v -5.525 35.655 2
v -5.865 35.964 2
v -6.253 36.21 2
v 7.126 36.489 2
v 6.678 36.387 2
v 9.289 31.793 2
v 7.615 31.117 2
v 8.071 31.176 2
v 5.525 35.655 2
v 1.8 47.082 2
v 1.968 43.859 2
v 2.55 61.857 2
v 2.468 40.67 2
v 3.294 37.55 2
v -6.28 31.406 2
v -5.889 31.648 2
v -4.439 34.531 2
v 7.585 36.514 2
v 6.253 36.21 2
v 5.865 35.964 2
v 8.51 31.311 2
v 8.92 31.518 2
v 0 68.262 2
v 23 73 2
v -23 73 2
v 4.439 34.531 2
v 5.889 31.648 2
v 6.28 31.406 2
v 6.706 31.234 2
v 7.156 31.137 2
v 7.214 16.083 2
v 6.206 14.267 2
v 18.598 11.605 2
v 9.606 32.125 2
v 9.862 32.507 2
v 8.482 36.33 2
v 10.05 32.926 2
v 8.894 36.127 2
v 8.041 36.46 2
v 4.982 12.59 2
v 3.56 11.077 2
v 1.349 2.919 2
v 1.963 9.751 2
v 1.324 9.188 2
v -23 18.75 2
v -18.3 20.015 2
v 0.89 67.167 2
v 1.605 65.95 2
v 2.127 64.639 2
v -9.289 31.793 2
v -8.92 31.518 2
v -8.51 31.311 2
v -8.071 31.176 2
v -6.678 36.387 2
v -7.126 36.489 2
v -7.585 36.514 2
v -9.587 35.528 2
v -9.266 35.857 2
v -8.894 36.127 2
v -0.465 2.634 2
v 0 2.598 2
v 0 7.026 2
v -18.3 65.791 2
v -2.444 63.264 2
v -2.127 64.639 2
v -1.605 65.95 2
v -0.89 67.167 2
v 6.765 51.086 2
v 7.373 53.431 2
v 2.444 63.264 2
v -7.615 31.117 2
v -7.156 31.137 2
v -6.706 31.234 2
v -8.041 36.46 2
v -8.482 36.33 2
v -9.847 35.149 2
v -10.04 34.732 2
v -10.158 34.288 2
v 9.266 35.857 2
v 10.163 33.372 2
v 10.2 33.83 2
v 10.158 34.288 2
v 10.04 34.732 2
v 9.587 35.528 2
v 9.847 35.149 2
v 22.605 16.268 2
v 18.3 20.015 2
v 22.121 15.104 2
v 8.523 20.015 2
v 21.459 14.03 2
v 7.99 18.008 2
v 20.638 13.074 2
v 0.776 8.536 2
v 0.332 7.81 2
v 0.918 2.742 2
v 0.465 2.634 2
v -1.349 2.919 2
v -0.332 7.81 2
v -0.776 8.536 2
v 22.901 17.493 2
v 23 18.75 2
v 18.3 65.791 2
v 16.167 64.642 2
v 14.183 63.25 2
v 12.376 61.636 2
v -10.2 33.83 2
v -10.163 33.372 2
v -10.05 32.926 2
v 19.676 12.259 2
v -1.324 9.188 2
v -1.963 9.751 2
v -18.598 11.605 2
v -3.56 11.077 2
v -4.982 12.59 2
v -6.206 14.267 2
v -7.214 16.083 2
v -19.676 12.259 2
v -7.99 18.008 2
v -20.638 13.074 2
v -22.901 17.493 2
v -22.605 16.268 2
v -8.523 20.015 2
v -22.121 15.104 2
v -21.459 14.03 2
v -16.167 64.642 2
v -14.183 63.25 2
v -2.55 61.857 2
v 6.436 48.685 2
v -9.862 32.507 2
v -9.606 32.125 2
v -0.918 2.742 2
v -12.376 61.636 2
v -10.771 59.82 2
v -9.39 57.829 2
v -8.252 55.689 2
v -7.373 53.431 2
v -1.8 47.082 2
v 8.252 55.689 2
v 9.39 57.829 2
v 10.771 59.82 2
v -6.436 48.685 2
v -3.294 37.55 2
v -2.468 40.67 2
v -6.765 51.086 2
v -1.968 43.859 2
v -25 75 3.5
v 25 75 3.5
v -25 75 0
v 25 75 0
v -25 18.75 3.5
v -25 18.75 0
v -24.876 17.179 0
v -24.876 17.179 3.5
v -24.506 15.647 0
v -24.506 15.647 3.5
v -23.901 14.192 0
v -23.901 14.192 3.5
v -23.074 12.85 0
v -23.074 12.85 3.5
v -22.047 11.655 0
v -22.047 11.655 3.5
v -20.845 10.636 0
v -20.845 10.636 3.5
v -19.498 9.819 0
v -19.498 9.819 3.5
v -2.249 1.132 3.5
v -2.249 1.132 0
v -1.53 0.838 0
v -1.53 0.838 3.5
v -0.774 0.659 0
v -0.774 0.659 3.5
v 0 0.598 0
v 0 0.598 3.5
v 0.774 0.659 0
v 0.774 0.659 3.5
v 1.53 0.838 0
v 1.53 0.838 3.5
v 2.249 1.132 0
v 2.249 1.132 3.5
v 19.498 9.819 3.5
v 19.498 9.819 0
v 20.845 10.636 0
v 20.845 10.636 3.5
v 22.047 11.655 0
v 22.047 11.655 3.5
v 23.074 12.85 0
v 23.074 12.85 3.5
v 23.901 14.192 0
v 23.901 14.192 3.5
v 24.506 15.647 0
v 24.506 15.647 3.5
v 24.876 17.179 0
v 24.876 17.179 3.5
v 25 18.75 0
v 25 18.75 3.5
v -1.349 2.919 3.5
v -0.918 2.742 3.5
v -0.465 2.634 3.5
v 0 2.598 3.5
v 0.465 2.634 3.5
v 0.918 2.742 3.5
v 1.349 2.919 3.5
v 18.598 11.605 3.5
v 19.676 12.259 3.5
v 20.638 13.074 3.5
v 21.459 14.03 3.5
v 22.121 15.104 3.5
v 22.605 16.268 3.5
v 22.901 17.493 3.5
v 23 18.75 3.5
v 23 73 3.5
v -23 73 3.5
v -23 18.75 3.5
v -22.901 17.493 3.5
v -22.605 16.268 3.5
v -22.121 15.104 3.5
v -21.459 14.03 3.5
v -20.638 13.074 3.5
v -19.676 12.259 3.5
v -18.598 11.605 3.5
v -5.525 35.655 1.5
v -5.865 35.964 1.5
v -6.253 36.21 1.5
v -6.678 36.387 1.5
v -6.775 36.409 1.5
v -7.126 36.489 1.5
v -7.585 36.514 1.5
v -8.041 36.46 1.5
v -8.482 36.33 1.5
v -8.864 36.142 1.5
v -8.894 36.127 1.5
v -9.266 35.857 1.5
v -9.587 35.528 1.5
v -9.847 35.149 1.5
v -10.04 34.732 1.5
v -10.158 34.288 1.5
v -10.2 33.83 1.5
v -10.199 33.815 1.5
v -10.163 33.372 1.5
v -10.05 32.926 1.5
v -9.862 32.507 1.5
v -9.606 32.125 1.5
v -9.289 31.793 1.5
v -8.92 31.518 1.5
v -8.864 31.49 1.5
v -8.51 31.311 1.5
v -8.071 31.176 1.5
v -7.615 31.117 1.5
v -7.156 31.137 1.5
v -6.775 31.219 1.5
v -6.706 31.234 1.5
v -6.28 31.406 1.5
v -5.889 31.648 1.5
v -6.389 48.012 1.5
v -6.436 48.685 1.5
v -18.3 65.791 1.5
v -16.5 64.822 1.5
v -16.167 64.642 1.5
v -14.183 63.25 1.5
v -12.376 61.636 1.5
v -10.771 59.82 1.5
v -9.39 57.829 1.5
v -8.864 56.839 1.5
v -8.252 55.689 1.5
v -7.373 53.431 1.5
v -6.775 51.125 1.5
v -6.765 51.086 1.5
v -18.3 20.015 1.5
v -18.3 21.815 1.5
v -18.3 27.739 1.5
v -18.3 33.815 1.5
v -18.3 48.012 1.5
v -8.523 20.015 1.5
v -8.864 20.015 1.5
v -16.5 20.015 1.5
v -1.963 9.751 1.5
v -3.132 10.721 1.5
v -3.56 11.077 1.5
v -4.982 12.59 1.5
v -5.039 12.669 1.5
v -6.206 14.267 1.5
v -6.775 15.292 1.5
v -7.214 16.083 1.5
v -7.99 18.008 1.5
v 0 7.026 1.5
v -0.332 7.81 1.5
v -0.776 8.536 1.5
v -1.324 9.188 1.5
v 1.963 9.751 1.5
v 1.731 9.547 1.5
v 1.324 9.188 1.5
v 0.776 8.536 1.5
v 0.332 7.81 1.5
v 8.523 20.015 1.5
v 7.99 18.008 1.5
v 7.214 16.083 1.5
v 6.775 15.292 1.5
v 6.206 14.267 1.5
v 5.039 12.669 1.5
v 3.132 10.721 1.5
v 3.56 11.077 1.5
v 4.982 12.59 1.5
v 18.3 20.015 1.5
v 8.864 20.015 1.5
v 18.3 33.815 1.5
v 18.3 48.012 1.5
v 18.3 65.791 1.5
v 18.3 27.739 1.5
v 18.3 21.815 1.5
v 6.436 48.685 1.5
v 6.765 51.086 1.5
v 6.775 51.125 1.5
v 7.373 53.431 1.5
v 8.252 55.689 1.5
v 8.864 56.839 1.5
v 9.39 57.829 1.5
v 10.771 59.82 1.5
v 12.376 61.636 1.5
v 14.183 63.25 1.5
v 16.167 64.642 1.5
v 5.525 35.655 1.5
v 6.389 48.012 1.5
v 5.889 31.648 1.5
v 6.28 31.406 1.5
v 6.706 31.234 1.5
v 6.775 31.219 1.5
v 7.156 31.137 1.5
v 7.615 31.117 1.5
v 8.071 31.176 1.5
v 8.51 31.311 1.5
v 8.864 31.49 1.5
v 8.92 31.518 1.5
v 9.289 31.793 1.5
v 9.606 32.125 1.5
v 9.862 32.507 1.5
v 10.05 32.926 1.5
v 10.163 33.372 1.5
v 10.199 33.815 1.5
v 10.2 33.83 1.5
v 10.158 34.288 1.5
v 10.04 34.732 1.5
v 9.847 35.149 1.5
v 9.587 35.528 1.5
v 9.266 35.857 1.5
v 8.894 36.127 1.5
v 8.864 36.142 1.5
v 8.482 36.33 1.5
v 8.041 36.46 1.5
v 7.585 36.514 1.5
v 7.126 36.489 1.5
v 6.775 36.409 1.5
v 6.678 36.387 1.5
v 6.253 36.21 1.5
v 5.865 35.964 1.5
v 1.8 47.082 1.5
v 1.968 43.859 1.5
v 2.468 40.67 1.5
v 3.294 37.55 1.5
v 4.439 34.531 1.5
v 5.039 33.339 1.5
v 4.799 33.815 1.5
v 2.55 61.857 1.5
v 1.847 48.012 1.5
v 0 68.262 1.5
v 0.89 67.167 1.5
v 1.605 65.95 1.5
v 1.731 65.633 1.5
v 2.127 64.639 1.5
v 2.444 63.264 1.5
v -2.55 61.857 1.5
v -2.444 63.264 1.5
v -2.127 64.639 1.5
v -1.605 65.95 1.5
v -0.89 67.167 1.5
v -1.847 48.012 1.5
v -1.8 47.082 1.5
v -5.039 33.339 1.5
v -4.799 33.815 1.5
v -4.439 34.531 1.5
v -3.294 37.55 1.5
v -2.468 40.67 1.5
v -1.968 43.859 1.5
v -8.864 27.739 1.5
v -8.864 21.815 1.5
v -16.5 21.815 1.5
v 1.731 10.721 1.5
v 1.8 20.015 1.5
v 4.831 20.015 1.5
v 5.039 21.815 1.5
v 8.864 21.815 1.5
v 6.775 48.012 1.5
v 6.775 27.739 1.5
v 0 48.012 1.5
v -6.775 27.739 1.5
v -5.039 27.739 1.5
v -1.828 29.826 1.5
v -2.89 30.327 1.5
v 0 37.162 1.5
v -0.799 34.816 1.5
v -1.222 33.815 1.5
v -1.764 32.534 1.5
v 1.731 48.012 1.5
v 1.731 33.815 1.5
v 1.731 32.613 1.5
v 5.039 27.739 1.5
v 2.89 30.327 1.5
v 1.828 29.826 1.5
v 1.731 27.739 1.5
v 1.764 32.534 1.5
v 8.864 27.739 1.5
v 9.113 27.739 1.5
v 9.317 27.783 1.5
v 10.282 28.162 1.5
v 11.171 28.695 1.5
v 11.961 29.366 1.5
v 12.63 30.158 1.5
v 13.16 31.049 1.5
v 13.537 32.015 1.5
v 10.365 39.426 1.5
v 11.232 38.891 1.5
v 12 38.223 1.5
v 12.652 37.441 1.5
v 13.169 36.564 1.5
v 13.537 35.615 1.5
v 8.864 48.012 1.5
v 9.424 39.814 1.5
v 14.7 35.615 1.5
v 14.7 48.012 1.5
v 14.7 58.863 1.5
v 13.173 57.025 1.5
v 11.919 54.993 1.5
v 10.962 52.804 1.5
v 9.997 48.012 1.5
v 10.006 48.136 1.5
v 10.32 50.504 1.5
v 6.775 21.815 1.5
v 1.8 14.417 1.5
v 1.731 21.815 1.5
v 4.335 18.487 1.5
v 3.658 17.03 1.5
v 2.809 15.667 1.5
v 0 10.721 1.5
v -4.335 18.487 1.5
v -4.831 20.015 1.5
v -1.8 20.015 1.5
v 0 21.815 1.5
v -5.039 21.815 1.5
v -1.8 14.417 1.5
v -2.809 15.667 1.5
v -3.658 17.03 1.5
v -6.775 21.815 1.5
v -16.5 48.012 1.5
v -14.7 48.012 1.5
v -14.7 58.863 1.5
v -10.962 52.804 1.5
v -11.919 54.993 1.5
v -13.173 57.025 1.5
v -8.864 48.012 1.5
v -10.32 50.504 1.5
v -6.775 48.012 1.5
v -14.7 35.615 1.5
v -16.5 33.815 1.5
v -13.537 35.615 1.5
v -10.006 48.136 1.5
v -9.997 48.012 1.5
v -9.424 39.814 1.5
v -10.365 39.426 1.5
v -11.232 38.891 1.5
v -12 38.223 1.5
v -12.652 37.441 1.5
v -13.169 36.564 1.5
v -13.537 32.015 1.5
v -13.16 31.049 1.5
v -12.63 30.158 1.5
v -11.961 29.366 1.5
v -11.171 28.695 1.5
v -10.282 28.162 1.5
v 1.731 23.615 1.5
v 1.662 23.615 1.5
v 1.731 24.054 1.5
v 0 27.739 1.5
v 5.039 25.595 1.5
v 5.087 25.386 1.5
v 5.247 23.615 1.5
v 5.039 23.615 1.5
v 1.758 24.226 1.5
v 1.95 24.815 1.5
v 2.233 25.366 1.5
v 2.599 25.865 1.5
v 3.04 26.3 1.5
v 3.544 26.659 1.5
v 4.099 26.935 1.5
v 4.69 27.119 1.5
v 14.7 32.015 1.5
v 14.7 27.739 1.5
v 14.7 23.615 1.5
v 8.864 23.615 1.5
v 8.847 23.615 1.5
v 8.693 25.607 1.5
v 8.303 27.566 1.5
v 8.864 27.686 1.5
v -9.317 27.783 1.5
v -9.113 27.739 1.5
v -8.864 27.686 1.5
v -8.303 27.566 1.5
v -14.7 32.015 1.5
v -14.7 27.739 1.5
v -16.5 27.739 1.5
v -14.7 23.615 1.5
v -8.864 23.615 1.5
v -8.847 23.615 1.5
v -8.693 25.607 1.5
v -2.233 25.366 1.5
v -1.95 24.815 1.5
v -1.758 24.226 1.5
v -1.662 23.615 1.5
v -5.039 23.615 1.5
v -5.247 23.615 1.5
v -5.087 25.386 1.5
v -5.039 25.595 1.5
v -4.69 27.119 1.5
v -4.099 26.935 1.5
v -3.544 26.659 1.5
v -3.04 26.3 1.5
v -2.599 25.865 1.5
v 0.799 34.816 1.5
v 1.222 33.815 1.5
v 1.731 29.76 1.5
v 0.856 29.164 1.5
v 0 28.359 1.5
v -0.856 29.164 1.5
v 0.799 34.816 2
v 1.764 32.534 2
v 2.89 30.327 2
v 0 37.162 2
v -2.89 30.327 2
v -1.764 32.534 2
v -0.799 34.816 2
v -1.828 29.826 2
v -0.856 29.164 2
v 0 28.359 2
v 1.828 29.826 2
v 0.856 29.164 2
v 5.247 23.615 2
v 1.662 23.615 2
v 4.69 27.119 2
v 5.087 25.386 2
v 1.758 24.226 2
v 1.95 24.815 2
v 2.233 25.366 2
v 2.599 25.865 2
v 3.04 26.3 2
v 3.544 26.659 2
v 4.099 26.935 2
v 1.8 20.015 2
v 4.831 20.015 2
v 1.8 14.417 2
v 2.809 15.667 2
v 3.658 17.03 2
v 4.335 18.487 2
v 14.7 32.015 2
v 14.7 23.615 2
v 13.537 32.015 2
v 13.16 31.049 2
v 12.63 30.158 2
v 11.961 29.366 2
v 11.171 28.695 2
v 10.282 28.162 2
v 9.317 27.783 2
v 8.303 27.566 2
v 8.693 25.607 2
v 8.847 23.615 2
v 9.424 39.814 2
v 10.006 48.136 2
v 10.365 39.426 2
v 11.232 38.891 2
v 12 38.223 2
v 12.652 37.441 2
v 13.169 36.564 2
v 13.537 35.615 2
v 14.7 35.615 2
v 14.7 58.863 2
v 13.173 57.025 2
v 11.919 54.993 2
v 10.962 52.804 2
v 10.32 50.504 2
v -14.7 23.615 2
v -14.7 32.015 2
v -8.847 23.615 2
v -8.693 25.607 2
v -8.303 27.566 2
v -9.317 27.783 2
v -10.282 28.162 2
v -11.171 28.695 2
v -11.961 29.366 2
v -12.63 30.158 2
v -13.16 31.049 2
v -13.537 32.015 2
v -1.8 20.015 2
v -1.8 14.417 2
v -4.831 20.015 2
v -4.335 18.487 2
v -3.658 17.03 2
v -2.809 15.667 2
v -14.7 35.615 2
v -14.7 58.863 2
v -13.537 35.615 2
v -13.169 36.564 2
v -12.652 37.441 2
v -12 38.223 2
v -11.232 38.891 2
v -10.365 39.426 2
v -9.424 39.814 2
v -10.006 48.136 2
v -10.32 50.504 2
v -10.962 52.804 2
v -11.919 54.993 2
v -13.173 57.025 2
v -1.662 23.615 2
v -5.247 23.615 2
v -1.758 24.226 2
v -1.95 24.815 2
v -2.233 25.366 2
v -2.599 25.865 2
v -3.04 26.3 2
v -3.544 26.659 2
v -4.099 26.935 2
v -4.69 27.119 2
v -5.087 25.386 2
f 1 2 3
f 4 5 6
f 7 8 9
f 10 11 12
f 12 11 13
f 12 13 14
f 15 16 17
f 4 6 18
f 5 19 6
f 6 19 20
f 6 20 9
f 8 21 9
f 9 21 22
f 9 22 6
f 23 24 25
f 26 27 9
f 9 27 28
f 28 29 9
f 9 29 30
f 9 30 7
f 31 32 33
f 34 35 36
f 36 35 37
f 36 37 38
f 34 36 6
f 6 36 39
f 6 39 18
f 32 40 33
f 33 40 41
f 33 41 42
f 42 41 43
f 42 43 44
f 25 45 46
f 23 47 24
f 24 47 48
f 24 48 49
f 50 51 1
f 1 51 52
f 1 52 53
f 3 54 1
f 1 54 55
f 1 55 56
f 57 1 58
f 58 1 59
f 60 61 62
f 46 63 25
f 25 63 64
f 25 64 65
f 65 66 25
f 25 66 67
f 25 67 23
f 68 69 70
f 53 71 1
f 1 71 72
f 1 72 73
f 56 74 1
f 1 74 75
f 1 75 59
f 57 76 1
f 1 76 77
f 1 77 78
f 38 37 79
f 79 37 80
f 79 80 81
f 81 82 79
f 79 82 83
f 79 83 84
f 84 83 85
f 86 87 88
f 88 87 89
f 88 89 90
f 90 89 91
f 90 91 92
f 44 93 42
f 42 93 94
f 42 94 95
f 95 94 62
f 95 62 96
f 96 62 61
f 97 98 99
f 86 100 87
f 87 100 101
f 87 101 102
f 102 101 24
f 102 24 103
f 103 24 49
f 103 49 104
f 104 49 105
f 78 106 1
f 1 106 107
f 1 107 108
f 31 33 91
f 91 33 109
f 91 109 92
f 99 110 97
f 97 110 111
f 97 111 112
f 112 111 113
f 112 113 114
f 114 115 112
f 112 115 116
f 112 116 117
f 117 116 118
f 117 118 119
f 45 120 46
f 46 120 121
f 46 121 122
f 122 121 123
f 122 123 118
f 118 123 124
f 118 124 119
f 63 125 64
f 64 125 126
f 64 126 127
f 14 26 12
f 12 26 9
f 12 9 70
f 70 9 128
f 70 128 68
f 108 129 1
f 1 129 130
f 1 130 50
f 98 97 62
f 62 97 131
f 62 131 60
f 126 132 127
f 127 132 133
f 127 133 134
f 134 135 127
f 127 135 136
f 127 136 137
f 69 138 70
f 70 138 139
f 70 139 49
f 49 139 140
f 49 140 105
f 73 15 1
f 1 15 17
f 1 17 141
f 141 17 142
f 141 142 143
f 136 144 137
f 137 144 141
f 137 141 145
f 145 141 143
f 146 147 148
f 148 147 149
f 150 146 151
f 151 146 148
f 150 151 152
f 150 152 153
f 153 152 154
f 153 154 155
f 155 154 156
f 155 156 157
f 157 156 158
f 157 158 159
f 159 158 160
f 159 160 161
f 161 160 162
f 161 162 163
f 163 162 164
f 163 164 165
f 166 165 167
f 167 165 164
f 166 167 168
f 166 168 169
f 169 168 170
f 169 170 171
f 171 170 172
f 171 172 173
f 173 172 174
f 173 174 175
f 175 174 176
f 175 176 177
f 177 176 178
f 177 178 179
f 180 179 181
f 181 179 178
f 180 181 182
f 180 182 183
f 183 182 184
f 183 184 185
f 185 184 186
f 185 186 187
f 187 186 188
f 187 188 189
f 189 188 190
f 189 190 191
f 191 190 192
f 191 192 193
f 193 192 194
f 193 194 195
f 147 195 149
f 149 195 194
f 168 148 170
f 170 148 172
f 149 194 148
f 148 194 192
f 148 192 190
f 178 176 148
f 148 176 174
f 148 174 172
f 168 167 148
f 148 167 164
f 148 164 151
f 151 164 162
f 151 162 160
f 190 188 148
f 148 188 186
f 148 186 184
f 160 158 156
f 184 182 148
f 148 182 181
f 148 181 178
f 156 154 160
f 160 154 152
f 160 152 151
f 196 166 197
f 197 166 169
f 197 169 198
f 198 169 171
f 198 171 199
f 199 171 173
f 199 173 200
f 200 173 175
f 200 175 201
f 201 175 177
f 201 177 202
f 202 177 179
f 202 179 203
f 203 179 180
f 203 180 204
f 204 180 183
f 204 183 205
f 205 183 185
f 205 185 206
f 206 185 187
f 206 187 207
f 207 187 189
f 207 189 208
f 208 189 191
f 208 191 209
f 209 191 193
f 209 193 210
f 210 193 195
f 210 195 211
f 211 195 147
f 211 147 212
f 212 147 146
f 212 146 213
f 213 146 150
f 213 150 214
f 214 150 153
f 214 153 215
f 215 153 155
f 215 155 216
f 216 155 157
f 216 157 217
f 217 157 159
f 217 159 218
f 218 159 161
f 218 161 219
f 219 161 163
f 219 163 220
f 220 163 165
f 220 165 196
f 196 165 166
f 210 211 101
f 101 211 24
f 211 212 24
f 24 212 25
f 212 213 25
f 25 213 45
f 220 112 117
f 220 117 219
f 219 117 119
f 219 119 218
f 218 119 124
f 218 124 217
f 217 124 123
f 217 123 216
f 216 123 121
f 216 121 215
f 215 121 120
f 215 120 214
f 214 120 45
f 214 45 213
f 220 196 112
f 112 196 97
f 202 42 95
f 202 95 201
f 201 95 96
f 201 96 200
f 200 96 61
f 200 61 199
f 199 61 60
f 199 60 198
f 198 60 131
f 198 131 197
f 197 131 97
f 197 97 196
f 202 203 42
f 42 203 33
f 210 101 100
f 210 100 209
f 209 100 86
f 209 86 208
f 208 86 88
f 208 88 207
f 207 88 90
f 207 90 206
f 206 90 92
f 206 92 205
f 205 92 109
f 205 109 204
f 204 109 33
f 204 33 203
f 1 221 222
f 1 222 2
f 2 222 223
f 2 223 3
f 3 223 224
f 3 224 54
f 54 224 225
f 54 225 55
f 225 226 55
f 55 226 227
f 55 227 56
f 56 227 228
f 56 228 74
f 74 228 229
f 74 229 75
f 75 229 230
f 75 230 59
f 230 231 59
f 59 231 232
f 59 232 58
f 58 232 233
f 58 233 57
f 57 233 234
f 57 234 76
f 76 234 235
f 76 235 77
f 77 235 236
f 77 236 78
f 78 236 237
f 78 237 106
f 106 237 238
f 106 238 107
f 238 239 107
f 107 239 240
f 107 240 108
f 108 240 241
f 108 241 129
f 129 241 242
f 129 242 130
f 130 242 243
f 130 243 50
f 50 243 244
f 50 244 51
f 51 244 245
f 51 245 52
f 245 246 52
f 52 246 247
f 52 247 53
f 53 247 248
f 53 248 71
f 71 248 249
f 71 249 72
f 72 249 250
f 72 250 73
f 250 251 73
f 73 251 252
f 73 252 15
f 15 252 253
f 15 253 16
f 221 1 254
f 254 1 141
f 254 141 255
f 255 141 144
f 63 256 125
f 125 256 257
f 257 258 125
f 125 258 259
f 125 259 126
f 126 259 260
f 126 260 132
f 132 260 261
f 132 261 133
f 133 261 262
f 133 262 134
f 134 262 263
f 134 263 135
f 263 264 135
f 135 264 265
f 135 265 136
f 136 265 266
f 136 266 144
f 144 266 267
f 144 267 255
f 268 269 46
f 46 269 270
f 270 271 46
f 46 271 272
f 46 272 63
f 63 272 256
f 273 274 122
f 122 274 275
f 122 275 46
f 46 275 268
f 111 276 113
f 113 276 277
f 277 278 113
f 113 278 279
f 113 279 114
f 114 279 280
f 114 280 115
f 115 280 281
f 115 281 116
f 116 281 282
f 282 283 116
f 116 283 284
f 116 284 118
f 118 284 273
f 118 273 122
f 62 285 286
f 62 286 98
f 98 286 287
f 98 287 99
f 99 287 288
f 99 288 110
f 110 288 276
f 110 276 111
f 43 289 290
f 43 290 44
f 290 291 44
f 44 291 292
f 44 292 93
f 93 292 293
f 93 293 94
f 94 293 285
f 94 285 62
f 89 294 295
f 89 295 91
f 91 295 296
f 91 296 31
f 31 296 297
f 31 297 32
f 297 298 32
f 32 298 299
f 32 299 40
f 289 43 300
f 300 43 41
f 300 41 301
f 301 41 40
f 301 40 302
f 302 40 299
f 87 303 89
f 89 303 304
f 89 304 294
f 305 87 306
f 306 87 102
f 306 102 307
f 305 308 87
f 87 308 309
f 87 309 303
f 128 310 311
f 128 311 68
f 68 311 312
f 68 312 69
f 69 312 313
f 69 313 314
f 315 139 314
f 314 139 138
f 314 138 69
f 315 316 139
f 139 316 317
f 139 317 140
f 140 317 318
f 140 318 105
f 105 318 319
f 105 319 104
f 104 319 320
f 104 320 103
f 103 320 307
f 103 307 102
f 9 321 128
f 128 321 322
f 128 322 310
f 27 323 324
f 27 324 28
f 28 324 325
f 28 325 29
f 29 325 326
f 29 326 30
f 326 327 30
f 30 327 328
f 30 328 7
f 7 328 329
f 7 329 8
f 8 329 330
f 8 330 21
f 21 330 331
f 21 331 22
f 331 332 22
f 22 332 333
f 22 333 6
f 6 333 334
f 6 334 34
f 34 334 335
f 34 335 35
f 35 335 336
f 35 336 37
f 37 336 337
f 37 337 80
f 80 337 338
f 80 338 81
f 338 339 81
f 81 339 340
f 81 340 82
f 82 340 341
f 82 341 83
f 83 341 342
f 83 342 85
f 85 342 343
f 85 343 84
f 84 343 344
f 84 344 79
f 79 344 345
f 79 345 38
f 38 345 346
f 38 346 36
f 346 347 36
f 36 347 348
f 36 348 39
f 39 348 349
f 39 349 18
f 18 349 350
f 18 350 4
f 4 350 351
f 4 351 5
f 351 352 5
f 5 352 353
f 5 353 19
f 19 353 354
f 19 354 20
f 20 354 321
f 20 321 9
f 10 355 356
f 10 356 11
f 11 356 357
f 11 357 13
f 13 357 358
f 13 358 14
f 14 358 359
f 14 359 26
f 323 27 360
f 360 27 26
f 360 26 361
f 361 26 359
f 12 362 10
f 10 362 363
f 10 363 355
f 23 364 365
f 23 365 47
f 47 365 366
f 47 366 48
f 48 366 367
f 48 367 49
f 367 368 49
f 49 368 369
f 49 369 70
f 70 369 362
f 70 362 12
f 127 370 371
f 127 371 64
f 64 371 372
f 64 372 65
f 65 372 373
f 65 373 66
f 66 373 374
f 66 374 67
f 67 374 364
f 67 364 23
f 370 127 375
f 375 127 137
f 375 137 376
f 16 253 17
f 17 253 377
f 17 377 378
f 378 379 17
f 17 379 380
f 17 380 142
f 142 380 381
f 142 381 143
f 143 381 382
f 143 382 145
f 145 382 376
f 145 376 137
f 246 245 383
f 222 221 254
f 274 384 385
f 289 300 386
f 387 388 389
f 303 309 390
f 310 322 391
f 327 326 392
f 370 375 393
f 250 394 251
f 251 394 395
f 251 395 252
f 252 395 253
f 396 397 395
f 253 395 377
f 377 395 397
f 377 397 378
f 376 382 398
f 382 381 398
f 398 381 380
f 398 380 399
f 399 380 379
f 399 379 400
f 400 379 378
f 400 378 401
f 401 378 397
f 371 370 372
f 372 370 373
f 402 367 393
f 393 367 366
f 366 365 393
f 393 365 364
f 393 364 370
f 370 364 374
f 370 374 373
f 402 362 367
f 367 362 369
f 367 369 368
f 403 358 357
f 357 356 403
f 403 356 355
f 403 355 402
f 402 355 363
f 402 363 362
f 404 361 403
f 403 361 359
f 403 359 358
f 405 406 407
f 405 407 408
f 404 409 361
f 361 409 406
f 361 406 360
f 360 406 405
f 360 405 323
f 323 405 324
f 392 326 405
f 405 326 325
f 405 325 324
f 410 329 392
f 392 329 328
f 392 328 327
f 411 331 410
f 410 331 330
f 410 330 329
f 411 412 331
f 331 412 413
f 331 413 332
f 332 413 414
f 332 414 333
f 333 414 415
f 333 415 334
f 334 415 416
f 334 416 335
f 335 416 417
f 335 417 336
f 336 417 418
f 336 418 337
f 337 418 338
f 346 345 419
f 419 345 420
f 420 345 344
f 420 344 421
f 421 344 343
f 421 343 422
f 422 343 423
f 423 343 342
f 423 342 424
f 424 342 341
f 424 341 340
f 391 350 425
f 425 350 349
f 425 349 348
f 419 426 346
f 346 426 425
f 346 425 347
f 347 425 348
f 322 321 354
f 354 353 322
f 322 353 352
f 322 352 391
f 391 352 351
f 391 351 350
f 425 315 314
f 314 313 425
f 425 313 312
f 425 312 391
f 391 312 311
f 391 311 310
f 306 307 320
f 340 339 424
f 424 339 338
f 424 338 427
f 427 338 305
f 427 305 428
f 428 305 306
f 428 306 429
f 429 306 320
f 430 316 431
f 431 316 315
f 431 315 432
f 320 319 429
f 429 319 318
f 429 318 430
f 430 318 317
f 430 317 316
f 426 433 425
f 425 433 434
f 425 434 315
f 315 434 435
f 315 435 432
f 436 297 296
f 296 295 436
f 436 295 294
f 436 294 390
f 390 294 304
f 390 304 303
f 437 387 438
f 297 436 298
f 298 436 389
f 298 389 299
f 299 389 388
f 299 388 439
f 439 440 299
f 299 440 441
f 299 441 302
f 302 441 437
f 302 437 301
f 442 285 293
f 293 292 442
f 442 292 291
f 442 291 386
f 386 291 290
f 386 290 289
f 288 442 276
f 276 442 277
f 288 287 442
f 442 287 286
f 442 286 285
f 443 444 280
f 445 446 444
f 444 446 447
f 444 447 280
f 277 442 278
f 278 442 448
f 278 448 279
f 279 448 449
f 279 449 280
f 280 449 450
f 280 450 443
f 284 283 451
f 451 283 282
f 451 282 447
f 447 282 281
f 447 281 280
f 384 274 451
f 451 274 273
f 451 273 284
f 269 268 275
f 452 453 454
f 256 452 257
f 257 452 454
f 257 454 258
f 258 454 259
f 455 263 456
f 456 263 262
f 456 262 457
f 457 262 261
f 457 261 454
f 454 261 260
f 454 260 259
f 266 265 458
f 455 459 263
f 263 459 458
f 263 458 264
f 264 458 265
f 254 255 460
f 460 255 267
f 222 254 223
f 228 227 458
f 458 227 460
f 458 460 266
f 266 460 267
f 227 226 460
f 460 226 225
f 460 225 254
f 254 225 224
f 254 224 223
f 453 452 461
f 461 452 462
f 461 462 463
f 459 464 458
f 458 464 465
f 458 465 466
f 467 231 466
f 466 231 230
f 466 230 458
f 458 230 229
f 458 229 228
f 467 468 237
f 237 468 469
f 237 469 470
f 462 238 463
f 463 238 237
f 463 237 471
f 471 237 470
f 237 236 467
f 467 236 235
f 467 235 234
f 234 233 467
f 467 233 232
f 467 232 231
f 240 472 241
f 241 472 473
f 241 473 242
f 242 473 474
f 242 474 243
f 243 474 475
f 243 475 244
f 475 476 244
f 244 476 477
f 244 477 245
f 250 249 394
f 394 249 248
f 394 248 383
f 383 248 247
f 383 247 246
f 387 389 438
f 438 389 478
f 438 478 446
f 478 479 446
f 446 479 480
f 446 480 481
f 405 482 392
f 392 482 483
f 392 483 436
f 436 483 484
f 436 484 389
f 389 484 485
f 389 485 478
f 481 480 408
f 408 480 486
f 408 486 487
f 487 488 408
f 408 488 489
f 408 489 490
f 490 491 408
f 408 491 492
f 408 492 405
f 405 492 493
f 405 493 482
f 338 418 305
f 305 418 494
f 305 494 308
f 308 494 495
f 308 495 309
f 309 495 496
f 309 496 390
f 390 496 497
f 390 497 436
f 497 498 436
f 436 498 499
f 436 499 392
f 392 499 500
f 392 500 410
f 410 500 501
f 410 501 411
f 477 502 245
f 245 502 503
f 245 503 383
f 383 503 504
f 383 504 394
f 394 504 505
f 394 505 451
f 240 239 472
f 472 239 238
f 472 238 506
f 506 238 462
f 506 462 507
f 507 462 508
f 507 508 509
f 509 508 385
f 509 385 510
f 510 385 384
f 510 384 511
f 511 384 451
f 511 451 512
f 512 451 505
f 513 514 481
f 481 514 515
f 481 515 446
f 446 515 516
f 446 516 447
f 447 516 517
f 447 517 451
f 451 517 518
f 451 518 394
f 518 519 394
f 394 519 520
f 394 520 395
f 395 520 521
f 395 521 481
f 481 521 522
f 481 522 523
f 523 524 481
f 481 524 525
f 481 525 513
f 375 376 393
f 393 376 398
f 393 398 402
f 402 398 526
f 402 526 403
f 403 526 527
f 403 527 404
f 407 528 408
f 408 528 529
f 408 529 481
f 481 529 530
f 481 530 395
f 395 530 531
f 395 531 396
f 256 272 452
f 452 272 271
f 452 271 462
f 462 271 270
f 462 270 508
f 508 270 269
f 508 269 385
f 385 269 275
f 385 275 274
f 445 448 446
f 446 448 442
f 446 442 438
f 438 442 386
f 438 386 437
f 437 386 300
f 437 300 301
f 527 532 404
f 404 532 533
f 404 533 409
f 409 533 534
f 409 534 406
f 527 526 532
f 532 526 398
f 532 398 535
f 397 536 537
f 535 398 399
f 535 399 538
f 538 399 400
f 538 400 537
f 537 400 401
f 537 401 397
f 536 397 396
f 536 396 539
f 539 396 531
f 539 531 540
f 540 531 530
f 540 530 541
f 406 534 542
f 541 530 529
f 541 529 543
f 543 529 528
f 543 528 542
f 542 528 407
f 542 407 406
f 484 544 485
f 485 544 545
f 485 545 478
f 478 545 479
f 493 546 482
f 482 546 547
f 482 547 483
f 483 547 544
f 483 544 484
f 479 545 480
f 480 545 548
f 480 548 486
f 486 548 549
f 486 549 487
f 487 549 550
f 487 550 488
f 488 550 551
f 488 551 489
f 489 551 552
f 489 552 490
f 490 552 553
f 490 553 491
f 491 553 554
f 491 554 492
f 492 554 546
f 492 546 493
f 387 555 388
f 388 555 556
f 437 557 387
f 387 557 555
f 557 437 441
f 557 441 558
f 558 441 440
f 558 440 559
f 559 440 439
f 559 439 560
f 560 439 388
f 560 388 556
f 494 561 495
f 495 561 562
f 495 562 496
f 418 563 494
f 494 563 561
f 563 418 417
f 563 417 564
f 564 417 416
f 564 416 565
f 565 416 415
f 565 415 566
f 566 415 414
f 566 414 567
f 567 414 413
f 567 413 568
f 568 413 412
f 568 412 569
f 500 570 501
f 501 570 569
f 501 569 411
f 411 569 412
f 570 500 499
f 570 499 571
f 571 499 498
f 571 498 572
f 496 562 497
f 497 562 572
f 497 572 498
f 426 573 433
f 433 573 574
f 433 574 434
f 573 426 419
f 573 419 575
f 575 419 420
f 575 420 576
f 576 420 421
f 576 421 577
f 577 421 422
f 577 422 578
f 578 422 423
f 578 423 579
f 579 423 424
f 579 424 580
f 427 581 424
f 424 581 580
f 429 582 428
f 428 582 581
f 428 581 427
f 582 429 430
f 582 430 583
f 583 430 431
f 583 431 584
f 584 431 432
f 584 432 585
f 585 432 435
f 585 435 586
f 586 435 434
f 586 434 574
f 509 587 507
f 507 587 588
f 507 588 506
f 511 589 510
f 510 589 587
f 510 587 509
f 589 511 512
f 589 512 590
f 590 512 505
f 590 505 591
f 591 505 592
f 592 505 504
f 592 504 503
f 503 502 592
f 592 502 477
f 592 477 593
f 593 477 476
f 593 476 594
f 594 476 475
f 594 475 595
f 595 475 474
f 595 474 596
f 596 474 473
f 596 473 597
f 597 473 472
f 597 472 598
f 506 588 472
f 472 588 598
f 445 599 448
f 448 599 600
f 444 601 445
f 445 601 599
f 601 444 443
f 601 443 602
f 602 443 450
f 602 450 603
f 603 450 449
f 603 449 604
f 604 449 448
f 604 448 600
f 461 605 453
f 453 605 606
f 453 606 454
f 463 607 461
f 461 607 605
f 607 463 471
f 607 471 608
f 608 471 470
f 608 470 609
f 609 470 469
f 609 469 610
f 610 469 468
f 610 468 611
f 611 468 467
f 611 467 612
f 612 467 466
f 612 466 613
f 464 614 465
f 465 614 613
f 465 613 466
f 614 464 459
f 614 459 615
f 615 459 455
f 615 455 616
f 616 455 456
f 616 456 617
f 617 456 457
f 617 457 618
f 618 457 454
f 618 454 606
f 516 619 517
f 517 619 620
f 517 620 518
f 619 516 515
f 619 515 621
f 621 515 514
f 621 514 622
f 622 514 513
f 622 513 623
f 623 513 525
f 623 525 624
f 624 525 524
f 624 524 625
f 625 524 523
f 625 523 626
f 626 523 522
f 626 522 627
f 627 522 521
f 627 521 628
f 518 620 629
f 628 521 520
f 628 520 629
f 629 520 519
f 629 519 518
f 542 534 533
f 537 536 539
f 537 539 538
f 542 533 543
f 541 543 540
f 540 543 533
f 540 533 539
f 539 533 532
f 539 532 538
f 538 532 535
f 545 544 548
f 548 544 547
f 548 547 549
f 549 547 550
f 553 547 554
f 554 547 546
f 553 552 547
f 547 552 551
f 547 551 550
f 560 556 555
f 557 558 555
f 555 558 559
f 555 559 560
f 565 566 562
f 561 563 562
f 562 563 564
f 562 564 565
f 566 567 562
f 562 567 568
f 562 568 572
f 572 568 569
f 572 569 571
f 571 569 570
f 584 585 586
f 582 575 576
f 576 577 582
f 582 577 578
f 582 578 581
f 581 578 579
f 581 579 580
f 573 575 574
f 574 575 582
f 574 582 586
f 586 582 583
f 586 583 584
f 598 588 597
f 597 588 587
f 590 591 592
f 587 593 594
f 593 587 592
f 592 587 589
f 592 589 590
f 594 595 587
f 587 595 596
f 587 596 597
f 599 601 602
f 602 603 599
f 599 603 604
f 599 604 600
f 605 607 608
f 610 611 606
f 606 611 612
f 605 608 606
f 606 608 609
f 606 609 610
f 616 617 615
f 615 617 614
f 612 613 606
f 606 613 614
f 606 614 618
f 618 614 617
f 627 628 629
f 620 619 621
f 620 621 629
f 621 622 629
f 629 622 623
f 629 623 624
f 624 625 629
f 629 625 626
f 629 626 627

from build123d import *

# Parameters (mm, degrees)
EXTRUDE_1_DEPTH     = 2
EXTRUDE_2_DEPTH     = 1.5
OTHER_START         = 1.5
OTHER_1_DEPTH       = 0.5
CUT_EXTRUDE_1_DEPTH = 10


# Read off the part's stored shape, not the designer's step: Полость1
with BuildPart() as part:
    # Эскиз1 → Бобышка-Вытянуть1 (new body)
    with BuildSketch(Plane.XY):
        with BuildLine():
            Line((-2.248831138, 1.132455321), (-19.497662275, 9.818536847))
            ThreePointArc((-19.497662275, 9.818536847), (-23.514006776, 13.504841411), (-25, 18.75))
            Line((-25, 18.75), (-25, 75))
            Line((-25, 75), (25, 75))
            Line((25, 75), (25, 18.75))
            ThreePointArc((25, 18.75), (23.514006776, 13.504841411), (19.497662275, 9.818536847))
            Line((19.497662275, 9.818536847), (2.248831138, 1.132455321))
            ThreePointArc((2.248831138, 1.132455321), (0, 0.598186897), (-2.248831138, 1.132455321))
        make_face()
    extrude(amount=EXTRUDE_1_DEPTH)

    # Эскиз2 → Бобышка-Вытянуть2 (add)
    with BuildSketch(Plane.XY.offset(2)):
        with BuildLine():
            Line((25, 75), (-25, 75))
            Line((-25, 75), (-25, 18.75))
            ThreePointArc((-25, 18.75), (-23.514006776, 13.504841411), (-19.497662275, 9.818536847))
            Line((-19.497662275, 9.818536847), (-2.248831138, 1.132455321))
            ThreePointArc((-2.248831138, 1.132455321), (0, 0.598186897), (2.248831138, 1.132455321))
            Line((2.248831138, 1.132455321), (19.497662275, 9.818536847))
            ThreePointArc((19.497662275, 9.818536847), (23.514006776, 13.504841411), (25, 18.75))
            Line((25, 18.75), (25, 75))
        make_face()
        with BuildLine():
            Line((23, 73), (-23, 73))
            Line((-23, 73), (-23, 18.75))
            ThreePointArc((-23, 18.75), (-21.81120542, 14.553873129), (-18.59812982, 11.604829477))
            Line((-18.59812982, 11.604829477), (-1.349298683, 2.918747951))
            ThreePointArc((-1.349298683, 2.918747951), (0, 2.598186897), (1.349298683, 2.918747951))
            Line((1.349298683, 2.918747951), (18.59812982, 11.604829477))
            ThreePointArc((18.59812982, 11.604829477), (21.81120542, 14.553873129), (23, 18.75))
            Line((23, 18.75), (23, 73))
        make_face(mode=Mode.SUBTRACT)
    extrude(amount=EXTRUDE_2_DEPTH)

    # Полость1 outline → Полость1 (cut)
    with BuildSketch(Plane.XY.offset(OTHER_START)):
        with BuildLine():
            ThreePointArc((5.872817683, 36.335212556), (10.497140141, 33.683878279), (5.659180925, 31.446003782))
            ThreePointArc((5.659180925, 31.446003782), (2.557547726, 38.996194393), (1.5, 47.089840022))
            Line((1.5, 47.089840022), (2.25, 61.864840022))
            ThreePointArc((2.25, 61.864840022), (1.66872912, 65.046820537), (0, 67.817780472))
            ThreePointArc((0, 67.817780472), (-1.66872912, 65.046820537), (-2.25, 61.864840022))
            Line((-2.25, 61.864840022), (-1.5, 47.089840022))
            ThreePointArc((-1.5, 47.089840022), (-2.557547726, 38.996194393), (-5.659180925, 31.446003782))
            ThreePointArc((-5.659180925, 31.446003782), (-10.49714014, 33.683878279), (-5.872817683, 36.335212556))
            Line((-5.872817683, 36.335212556), (-6.73484174, 48.66273089))
            ThreePointArc((-6.73484174, 48.66273089), (-10.164455559, 58.47909234), (-18, 65.314840022))
            Line((-18, 65.314840022), (-18, 20.314840022))
            Line((-18, 20.314840022), (-8.27498074, 20.314840022))
            ThreePointArc((-8.27498074, 20.314840022), (-6.018005307, 14.531627185), (-1.78373039, 9.991758821))
            ThreePointArc((-1.78373039, 9.991758821), (-0.762703724, 9.010745514), (0, 7.817780472))
            ThreePointArc((0, 7.817780472), (0.762703724, 9.010745514), (1.78373039, 9.991758821))
            ThreePointArc((1.78373039, 9.991758821), (6.018005307, 14.531627185), (8.27498074, 20.314840022))
            Line((8.27498074, 20.314840022), (18, 20.314840022))
            Line((18, 20.314840022), (18, 65.314840022))
            ThreePointArc((18, 65.314840022), (10.164455559, 58.47909234), (6.73484174, 48.66273089))
            Line((6.73484174, 48.66273089), (5.872817683, 36.335212556))
        make_face()
        with BuildLine():
            ThreePointArc((-1.5, 13.673911644), (-3.833724688, 16.727440499), (-5.212446581, 20.314840022))
            Line((-5.212446581, 20.314840022), (-1.5, 20.314840022))
            Line((-1.5, 20.314840022), (-1.5, 13.673911644))
        make_face(mode=Mode.SUBTRACT)
        with BuildLine():
            ThreePointArc((-7.92032189, 27.82958067), (-8.391822285, 25.594060154), (-8.55, 23.314840022))
            Line((-8.55, 23.314840022), (-15, 23.314840022))
            Line((-15, 23.314840022), (-15, 32.314840022))
            Line((-15, 32.314840022), (-13.309475019, 32.314840022))
            ThreePointArc((-13.309475019, 32.314840022), (-11.338226185, 29.203113691), (-7.92032189, 27.82958067))
        make_face(mode=Mode.SUBTRACT)
        with BuildLine():
            ThreePointArc((-4.896666667, 27.463714033), (-2.35750881, 26.043942439), (-1.35, 23.314840022))
            Line((-1.35, 23.314840022), (-5.55, 23.314840022))
            ThreePointArc((-5.55, 23.314840022), (-5.385666463, 25.414840022), (-4.896666667, 27.463714033))
        make_face(mode=Mode.SUBTRACT)
        with BuildLine():
            Line((1.5, 13.673911644), (1.5, 20.314840022))
            Line((1.5, 20.314840022), (5.212446581, 20.314840022))
            ThreePointArc((5.212446581, 20.314840022), (3.833724688, 16.727440499), (1.5, 13.673911644))
        make_face(mode=Mode.SUBTRACT)
        with BuildLine():
            ThreePointArc((1.35, 23.314840022), (2.35750881, 26.043942439), (4.896666667, 27.463714033))
            ThreePointArc((4.896666667, 27.463714033), (5.385666463, 25.414840022), (5.55, 23.314840022))
            Line((5.55, 23.314840022), (1.35, 23.314840022))
        make_face(mode=Mode.SUBTRACT)
        with BuildLine():
            ThreePointArc((0, 38.259555712), (1.403302974, 34.104361284), (3.327405339, 30.163202817))
            ThreePointArc((3.327405339, 30.163202817), (1.502516133, 29.26949151), (0, 27.901505478))
            ThreePointArc((0, 27.901505478), (-1.502516133, 29.26949151), (-3.327405339, 30.163202817))
            ThreePointArc((-3.327405339, 30.163202817), (-1.403302974, 34.104361284), (0, 38.259555712))
        make_face(mode=Mode.SUBTRACT)
        with BuildLine():
            ThreePointArc((8.55, 23.314840022), (8.391822285, 25.594060154), (7.92032189, 27.82958067))
            ThreePointArc((7.92032189, 27.82958067), (11.338226185, 29.203113691), (13.309475019, 32.314840022))
            Line((13.309475019, 32.314840022), (15, 32.314840022))
            Line((15, 32.314840022), (15, 23.314840022))
            Line((15, 23.314840022), (8.55, 23.314840022))
        make_face(mode=Mode.SUBTRACT)
        with BuildLine():
            ThreePointArc((-9.108112452, 39.595322211), (-11.782030233, 38.017722019), (-13.309475019, 35.314840022))
            Line((-13.309475019, 35.314840022), (-15, 35.314840022))
            Line((-15, 35.314840022), (-15, 59.587599146))
            ThreePointArc((-15, 59.587599146), (-11.277427711, 54.369586152), (-9.706680997, 48.155251207))
            Line((-9.706680997, 48.155251207), (-9.108112452, 39.595322211))
        make_face(mode=Mode.SUBTRACT)
        with BuildLine():
            ThreePointArc((9.706680998, 48.155251207), (11.277427711, 54.369586152), (15, 59.587599146))
            Line((15, 59.587599146), (15, 35.314840022))
            Line((15, 35.314840022), (13.309475019, 35.314840022))
            ThreePointArc((13.309475019, 35.314840022), (11.782030233, 38.017722019), (9.108112452, 39.595322211))
            Line((9.108112452, 39.595322211), (9.706680998, 48.155251207))
        make_face(mode=Mode.SUBTRACT)
    extrude(amount=OTHER_1_DEPTH, mode=Mode.SUBTRACT)

    # Эскиз3 → Вырез-Вытянуть1 (cut)
    with BuildSketch(Plane.XY.offset(1.5)):
        with BuildLine():
            Line((-18.3, 65.79134502), (-18.3, 20.014840022))
            Line((-18.3, 20.014840022), (-8.522704696, 20.014840022))
            ThreePointArc((-8.522704696, 20.014840022), (-6.205709985, 14.267416366), (-1.962700971, 9.75097776))
            ThreePointArc((-1.962700971, 9.75097776), (-0.776140503, 8.53640523), (0, 7.026200576))
            ThreePointArc((0, 7.026200576), (0.776140503, 8.53640523), (1.962700971, 9.75097776))
            ThreePointArc((1.962700971, 9.75097776), (6.205709985, 14.267416366), (8.522704696, 20.014840022))
            Line((8.522704696, 20.014840022), (18.3, 20.014840022))
            Line((18.3, 20.014840022), (18.3, 65.79134502))
            ThreePointArc((18.3, 65.79134502), (10.051283209, 58.844723617), (6.435652247, 48.684797911))
            Line((6.435652247, 48.684797911), (5.524546517, 35.655378948))
            ThreePointArc((5.524546517, 35.655378948), (10.188878559, 34.059650346), (5.889417806, 31.647808643))
            ThreePointArc((5.889417806, 31.647808643), (2.840648904, 39.098998924), (1.800000924, 47.0822489))
            Line((1.800000924, 47.0822489), (2.549996836, 61.857168373))
            ThreePointArc((2.549996836, 61.857168373), (1.8904299, 65.304748617), (0, 68.262300456))
            ThreePointArc((0, 68.262300456), (-1.8904299, 65.304748617), (-2.549996836, 61.857168373))
            Line((-2.549996836, 61.857168373), (-1.800000923, 47.0822489))
            ThreePointArc((-1.800000923, 47.0822489), (-2.840648904, 39.098998924), (-5.889417806, 31.647808643))
            ThreePointArc((-5.889417806, 31.647808643), (-10.188878559, 34.059650346), (-5.524546517, 35.655378948))
            Line((-5.524546517, 35.655378948), (-6.435652247, 48.684797911))
            ThreePointArc((-6.435652247, 48.684797911), (-10.051283209, 58.844723617), (-18.3, 65.79134502))
        make_face()
        with BuildLine():
            Line((-14.7, 58.862618748), (-14.7, 35.614840022))
            Line((-14.7, 35.614840022), (-13.537383539, 35.614840022))
            ThreePointArc((-13.537383539, 35.614840022), (-12.000472829, 38.223438928), (-9.424123799, 39.813818902))
            Line((-9.424123799, 39.813818902), (-10.006037257, 48.13556906))
            ThreePointArc((-10.006037257, 48.13556906), (-11.401876329, 53.915296555), (-14.7, 58.862618748))
        make_face(mode=Mode.SUBTRACT)
        with BuildLine():
            Line((10.006037257, 48.13556906), (9.424123799, 39.813818902))
            ThreePointArc((9.424123799, 39.813818902), (12.000472829, 38.223438928), (13.537383539, 35.614840022))
            Line((13.537383539, 35.614840022), (14.7, 35.614840022))
            Line((14.7, 35.614840022), (14.7, 58.862618748))
            ThreePointArc((14.7, 58.862618748), (11.401876329, 53.915296555), (10.006037257, 48.13556906))
        make_face(mode=Mode.SUBTRACT)
        with BuildLine():
            Line((8.847321215, 23.614840022), (14.7, 23.614840022))
            Line((14.7, 23.614840022), (14.7, 32.014840022))
            Line((14.7, 32.014840022), (13.537383539, 32.014840022))
            ThreePointArc((13.537383539, 32.014840022), (11.579925154, 29.014401424), (8.303170174, 27.566246767))
            ThreePointArc((8.303170174, 27.566246767), (8.692930904, 25.606749909), (8.847321215, 23.614840022))
        make_face(mode=Mode.SUBTRACT)
        with BuildLine():
            Line((-5.246590469, 23.614840022), (-1.661555581, 23.614840022))
            ThreePointArc((-1.661555581, 23.614840022), (-2.599333734, 25.86504954), (-4.69, 27.118837919))
            ThreePointArc((-4.69, 27.118837919), (-5.086558291, 25.385624396), (-5.246590469, 23.614840022))
        make_face(mode=Mode.SUBTRACT)
        with BuildLine():
            Line((1.661555581, 23.614840022), (5.246590469, 23.614840022))
            ThreePointArc((5.246590469, 23.614840022), (5.086558291, 25.385624396), (4.69, 27.118837919))
            ThreePointArc((4.69, 27.118837919), (2.599333734, 25.86504954), (1.661555581, 23.614840022))
        make_face(mode=Mode.SUBTRACT)
        with BuildLine():
            Line((-1.8, 20.014840022), (-4.830845042, 20.014840022))
            ThreePointArc((-4.830845042, 20.014840022), (-3.657955571, 17.030306032), (-1.8, 14.416666052))
            Line((-1.8, 14.416666052), (-1.8, 20.014840022))
        make_face(mode=Mode.SUBTRACT)
        with BuildLine():
            Line((4.830845043, 20.014840022), (1.8, 20.014840022))
            Line((1.8, 20.014840022), (1.8, 14.416666052))
            ThreePointArc((1.8, 14.416666052), (3.657955571, 17.030306032), (4.830845043, 20.014840022))
        make_face(mode=Mode.SUBTRACT)
        with BuildLine():
            Line((-13.537383539, 32.014840022), (-14.7, 32.014840022))
            Line((-14.7, 32.014840022), (-14.7, 23.614840022))
            Line((-14.7, 23.614840022), (-8.847321215, 23.614840022))
            ThreePointArc((-8.847321215, 23.614840022), (-8.692930904, 25.606749909), (-8.303170174, 27.566246767))
            ThreePointArc((-8.303170174, 27.566246767), (-11.579925154, 29.014401424), (-13.537383539, 32.014840022))
        make_face(mode=Mode.SUBTRACT)
        with BuildLine():
            ThreePointArc((2.89047704, 30.327467035), (1.328934128, 29.514243453), (0, 28.359391538))
            ThreePointArc((0, 28.359391538), (-1.328934128, 29.514243453), (-2.89047704, 30.327467035))
            ThreePointArc((-2.89047704, 30.327467035), (-1.260735073, 33.666741166), (0, 37.162074866))
            ThreePointArc((0, 37.162074866), (1.260735073, 33.666741166), (2.89047704, 30.327467035))
        make_face(mode=Mode.SUBTRACT)
    extrude(amount=CUT_EXTRUDE_1_DEPTH, mode=Mode.SUBTRACT)


solid = part.part
